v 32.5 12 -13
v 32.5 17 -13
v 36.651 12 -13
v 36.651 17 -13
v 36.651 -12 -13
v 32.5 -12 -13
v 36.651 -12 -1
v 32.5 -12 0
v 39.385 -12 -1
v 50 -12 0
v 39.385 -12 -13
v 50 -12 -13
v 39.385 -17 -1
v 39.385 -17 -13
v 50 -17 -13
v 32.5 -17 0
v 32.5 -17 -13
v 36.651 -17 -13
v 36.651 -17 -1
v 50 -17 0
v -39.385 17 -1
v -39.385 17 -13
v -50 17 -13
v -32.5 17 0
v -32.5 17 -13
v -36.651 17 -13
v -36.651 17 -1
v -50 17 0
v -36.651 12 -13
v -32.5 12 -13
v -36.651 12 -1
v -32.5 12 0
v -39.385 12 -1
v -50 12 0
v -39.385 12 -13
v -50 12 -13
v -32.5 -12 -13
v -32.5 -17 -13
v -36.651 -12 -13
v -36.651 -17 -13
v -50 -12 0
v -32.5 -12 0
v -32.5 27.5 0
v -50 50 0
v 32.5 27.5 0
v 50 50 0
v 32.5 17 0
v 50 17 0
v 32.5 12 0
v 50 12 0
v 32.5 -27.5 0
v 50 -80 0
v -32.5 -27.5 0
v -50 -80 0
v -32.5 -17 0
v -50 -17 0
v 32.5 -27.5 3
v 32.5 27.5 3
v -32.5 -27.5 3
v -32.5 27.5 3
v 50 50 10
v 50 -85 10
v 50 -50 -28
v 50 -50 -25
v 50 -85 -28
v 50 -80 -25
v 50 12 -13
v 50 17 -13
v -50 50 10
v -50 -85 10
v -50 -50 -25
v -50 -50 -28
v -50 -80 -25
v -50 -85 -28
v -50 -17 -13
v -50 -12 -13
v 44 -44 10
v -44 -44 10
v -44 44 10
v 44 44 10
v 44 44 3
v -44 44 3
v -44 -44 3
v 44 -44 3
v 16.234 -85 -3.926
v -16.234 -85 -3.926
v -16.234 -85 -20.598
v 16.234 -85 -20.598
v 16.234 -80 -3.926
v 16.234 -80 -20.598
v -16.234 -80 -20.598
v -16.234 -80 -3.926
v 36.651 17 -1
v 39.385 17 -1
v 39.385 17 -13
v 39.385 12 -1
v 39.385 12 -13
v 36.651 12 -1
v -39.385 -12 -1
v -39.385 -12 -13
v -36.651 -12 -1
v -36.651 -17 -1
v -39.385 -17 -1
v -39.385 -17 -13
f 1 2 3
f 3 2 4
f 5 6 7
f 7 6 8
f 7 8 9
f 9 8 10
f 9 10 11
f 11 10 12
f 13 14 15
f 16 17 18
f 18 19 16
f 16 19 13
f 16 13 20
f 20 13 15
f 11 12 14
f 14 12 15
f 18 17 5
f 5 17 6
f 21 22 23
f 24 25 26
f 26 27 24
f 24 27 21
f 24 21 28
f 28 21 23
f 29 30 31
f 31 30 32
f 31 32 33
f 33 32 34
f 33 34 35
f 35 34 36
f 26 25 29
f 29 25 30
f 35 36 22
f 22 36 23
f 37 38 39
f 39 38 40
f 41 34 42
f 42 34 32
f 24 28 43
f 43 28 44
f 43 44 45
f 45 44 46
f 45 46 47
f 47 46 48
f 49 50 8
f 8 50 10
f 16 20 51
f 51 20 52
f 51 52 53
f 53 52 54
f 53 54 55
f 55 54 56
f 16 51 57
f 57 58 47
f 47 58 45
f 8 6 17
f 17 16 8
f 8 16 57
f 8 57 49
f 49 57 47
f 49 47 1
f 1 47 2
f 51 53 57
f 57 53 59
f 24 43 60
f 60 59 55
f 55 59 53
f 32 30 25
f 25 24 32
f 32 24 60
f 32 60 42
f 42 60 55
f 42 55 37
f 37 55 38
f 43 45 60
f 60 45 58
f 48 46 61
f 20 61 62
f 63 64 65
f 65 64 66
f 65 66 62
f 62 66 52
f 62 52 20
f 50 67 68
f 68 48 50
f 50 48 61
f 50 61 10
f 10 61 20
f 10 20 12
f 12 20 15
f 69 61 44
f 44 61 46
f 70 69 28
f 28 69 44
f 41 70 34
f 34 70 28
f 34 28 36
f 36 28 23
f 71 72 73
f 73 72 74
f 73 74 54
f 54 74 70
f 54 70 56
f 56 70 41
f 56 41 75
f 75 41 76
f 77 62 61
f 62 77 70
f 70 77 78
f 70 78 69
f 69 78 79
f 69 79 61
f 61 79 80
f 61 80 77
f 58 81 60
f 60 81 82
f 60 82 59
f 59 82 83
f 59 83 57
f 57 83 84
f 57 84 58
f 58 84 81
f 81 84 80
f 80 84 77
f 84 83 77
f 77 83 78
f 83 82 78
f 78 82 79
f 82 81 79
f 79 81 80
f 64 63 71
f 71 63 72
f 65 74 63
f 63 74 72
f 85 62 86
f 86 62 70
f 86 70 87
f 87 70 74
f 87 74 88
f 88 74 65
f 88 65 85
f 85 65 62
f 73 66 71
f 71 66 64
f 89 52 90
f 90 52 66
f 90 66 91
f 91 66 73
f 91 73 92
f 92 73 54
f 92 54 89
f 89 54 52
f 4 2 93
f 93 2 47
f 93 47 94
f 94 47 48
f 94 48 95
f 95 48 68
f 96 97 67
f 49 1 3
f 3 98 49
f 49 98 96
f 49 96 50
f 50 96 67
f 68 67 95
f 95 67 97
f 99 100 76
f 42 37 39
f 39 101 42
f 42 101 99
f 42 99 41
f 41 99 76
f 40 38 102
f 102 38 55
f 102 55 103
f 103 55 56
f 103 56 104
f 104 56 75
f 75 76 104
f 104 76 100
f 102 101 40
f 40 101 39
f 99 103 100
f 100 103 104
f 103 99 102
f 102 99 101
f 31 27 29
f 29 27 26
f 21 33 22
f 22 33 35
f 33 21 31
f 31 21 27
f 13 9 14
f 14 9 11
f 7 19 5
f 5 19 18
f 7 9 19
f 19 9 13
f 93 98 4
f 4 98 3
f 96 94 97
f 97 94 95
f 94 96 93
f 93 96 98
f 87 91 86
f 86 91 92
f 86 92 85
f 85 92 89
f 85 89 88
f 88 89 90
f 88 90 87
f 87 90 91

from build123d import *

# Parameters (mm, degrees)
SKETCH_1_W          = 100
SKETCH_1_H          = 100
EXTRUDE_1_DEPTH     = 10
SKETCH_2_W          = 65
SKETCH_2_H          = 55
CUT_EXTRUDE_1_DEPTH = 11
SKETCH_3_W          = 88
SKETCH_3_H          = 88
CUT_EXTRUDE_2_DEPTH = 7
SKETCH_4_W          = 100
SKETCH_4_H          = 38
EXTRUDE_2_DEPTH     = 35
SKETCH_8_W          = 100
SKETCH_8_H          = 25
CUT_EXTRUDE_3_DEPTH = 30
SKETCH_9_W          = 17.5
SKETCH_9_H          = 5
EXTRUDE_3_DEPTH     = 13
SKETCH_10_W         = 2.733389199
SKETCH_10_H         = 5
CUT_EXTRUDE_5_DEPTH = 12
SKETCH_11_W         = 32.468839848
SKETCH_11_H         = 16.671988928
CUT_EXTRUDE_6_DEPTH = 12


with BuildPart() as part:
    # 草图1 → 凸台-拉伸1 (new body)
    with BuildSketch(Plane.XY):
        Rectangle(SKETCH_1_W, SKETCH_1_H)
    extrude(amount=EXTRUDE_1_DEPTH)

    # 草图2 → 切除-拉伸1 (cut, through all)
    with BuildSketch(Plane.XY.offset(10)):
        Rectangle(SKETCH_2_W, SKETCH_2_H)
    extrude(amount=-CUT_EXTRUDE_1_DEPTH, mode=Mode.SUBTRACT)

    # 草图3 → 切除-拉伸2 (cut)
    with BuildSketch(Plane.XY.offset(10)):
        Rectangle(SKETCH_3_W, SKETCH_3_H)
    extrude(amount=-CUT_EXTRUDE_2_DEPTH, mode=Mode.SUBTRACT)

    # 草图4 → 凸台-拉伸2 (add)
    with BuildSketch(Plane.XZ.offset(50)):
        with Locations((0, -9)):
            Rectangle(SKETCH_4_W, SKETCH_4_H)
    extrude(amount=EXTRUDE_2_DEPTH)

    # 草图8 → 切除-拉伸3 (cut)
    with BuildSketch(Plane(origin=(0, -50, 0), x_dir=(1, 0, 0), z_dir=(0, 1, 0))):
        with Locations((0, 12.5)):
            Rectangle(SKETCH_8_W, SKETCH_8_H)
    extrude(amount=-CUT_EXTRUDE_3_DEPTH, mode=Mode.SUBTRACT)

    # 草图9 → 凸台-拉伸3 (add)
    with BuildSketch(Plane(origin=(0, 0, 0), x_dir=(-1, 0, 0), z_dir=(0, 0, -1))):
        with Locations((-41.25, 14.5)):
            Rectangle(SKETCH_9_W, SKETCH_9_H)
        with Locations((-41.25, -14.5)):
            Rectangle(SKETCH_9_W, SKETCH_9_H)
        with Locations((41.25, 14.5)):
            Rectangle(SKETCH_9_W, SKETCH_9_H)
        with Locations((41.25, -14.5)):
            Rectangle(SKETCH_9_W, SKETCH_9_H)
    extrude(amount=EXTRUDE_3_DEPTH)

    # 草图10 → 切除-拉伸5 (cut)
    with BuildSketch(Plane(origin=(0, 0, -13), x_dir=(-1, 0, 0), z_dir=(0, 0, -1))):
        with Locations((-38.018129079, 14.5)):
            Rectangle(SKETCH_10_W, SKETCH_10_H)
        with Locations((-38.018129079, -14.5)):
            Rectangle(SKETCH_10_W, SKETCH_10_H)
        with Locations((38.018129079, -14.5)):
            Rectangle(SKETCH_10_W, SKETCH_10_H)
        with Locations((38.018129079, 14.5)):
            Rectangle(SKETCH_10_W, SKETCH_10_H)
    extrude(amount=-CUT_EXTRUDE_5_DEPTH, mode=Mode.SUBTRACT)

    # 草图11 → 切除-拉伸6 (cut)
    with BuildSketch(Plane.XZ.offset(85)):
        with Locations((0, -12.262013559)):
            Rectangle(SKETCH_11_W, SKETCH_11_H)
    extrude(amount=-CUT_EXTRUDE_6_DEPTH, mode=Mode.SUBTRACT)


solid = part.part
